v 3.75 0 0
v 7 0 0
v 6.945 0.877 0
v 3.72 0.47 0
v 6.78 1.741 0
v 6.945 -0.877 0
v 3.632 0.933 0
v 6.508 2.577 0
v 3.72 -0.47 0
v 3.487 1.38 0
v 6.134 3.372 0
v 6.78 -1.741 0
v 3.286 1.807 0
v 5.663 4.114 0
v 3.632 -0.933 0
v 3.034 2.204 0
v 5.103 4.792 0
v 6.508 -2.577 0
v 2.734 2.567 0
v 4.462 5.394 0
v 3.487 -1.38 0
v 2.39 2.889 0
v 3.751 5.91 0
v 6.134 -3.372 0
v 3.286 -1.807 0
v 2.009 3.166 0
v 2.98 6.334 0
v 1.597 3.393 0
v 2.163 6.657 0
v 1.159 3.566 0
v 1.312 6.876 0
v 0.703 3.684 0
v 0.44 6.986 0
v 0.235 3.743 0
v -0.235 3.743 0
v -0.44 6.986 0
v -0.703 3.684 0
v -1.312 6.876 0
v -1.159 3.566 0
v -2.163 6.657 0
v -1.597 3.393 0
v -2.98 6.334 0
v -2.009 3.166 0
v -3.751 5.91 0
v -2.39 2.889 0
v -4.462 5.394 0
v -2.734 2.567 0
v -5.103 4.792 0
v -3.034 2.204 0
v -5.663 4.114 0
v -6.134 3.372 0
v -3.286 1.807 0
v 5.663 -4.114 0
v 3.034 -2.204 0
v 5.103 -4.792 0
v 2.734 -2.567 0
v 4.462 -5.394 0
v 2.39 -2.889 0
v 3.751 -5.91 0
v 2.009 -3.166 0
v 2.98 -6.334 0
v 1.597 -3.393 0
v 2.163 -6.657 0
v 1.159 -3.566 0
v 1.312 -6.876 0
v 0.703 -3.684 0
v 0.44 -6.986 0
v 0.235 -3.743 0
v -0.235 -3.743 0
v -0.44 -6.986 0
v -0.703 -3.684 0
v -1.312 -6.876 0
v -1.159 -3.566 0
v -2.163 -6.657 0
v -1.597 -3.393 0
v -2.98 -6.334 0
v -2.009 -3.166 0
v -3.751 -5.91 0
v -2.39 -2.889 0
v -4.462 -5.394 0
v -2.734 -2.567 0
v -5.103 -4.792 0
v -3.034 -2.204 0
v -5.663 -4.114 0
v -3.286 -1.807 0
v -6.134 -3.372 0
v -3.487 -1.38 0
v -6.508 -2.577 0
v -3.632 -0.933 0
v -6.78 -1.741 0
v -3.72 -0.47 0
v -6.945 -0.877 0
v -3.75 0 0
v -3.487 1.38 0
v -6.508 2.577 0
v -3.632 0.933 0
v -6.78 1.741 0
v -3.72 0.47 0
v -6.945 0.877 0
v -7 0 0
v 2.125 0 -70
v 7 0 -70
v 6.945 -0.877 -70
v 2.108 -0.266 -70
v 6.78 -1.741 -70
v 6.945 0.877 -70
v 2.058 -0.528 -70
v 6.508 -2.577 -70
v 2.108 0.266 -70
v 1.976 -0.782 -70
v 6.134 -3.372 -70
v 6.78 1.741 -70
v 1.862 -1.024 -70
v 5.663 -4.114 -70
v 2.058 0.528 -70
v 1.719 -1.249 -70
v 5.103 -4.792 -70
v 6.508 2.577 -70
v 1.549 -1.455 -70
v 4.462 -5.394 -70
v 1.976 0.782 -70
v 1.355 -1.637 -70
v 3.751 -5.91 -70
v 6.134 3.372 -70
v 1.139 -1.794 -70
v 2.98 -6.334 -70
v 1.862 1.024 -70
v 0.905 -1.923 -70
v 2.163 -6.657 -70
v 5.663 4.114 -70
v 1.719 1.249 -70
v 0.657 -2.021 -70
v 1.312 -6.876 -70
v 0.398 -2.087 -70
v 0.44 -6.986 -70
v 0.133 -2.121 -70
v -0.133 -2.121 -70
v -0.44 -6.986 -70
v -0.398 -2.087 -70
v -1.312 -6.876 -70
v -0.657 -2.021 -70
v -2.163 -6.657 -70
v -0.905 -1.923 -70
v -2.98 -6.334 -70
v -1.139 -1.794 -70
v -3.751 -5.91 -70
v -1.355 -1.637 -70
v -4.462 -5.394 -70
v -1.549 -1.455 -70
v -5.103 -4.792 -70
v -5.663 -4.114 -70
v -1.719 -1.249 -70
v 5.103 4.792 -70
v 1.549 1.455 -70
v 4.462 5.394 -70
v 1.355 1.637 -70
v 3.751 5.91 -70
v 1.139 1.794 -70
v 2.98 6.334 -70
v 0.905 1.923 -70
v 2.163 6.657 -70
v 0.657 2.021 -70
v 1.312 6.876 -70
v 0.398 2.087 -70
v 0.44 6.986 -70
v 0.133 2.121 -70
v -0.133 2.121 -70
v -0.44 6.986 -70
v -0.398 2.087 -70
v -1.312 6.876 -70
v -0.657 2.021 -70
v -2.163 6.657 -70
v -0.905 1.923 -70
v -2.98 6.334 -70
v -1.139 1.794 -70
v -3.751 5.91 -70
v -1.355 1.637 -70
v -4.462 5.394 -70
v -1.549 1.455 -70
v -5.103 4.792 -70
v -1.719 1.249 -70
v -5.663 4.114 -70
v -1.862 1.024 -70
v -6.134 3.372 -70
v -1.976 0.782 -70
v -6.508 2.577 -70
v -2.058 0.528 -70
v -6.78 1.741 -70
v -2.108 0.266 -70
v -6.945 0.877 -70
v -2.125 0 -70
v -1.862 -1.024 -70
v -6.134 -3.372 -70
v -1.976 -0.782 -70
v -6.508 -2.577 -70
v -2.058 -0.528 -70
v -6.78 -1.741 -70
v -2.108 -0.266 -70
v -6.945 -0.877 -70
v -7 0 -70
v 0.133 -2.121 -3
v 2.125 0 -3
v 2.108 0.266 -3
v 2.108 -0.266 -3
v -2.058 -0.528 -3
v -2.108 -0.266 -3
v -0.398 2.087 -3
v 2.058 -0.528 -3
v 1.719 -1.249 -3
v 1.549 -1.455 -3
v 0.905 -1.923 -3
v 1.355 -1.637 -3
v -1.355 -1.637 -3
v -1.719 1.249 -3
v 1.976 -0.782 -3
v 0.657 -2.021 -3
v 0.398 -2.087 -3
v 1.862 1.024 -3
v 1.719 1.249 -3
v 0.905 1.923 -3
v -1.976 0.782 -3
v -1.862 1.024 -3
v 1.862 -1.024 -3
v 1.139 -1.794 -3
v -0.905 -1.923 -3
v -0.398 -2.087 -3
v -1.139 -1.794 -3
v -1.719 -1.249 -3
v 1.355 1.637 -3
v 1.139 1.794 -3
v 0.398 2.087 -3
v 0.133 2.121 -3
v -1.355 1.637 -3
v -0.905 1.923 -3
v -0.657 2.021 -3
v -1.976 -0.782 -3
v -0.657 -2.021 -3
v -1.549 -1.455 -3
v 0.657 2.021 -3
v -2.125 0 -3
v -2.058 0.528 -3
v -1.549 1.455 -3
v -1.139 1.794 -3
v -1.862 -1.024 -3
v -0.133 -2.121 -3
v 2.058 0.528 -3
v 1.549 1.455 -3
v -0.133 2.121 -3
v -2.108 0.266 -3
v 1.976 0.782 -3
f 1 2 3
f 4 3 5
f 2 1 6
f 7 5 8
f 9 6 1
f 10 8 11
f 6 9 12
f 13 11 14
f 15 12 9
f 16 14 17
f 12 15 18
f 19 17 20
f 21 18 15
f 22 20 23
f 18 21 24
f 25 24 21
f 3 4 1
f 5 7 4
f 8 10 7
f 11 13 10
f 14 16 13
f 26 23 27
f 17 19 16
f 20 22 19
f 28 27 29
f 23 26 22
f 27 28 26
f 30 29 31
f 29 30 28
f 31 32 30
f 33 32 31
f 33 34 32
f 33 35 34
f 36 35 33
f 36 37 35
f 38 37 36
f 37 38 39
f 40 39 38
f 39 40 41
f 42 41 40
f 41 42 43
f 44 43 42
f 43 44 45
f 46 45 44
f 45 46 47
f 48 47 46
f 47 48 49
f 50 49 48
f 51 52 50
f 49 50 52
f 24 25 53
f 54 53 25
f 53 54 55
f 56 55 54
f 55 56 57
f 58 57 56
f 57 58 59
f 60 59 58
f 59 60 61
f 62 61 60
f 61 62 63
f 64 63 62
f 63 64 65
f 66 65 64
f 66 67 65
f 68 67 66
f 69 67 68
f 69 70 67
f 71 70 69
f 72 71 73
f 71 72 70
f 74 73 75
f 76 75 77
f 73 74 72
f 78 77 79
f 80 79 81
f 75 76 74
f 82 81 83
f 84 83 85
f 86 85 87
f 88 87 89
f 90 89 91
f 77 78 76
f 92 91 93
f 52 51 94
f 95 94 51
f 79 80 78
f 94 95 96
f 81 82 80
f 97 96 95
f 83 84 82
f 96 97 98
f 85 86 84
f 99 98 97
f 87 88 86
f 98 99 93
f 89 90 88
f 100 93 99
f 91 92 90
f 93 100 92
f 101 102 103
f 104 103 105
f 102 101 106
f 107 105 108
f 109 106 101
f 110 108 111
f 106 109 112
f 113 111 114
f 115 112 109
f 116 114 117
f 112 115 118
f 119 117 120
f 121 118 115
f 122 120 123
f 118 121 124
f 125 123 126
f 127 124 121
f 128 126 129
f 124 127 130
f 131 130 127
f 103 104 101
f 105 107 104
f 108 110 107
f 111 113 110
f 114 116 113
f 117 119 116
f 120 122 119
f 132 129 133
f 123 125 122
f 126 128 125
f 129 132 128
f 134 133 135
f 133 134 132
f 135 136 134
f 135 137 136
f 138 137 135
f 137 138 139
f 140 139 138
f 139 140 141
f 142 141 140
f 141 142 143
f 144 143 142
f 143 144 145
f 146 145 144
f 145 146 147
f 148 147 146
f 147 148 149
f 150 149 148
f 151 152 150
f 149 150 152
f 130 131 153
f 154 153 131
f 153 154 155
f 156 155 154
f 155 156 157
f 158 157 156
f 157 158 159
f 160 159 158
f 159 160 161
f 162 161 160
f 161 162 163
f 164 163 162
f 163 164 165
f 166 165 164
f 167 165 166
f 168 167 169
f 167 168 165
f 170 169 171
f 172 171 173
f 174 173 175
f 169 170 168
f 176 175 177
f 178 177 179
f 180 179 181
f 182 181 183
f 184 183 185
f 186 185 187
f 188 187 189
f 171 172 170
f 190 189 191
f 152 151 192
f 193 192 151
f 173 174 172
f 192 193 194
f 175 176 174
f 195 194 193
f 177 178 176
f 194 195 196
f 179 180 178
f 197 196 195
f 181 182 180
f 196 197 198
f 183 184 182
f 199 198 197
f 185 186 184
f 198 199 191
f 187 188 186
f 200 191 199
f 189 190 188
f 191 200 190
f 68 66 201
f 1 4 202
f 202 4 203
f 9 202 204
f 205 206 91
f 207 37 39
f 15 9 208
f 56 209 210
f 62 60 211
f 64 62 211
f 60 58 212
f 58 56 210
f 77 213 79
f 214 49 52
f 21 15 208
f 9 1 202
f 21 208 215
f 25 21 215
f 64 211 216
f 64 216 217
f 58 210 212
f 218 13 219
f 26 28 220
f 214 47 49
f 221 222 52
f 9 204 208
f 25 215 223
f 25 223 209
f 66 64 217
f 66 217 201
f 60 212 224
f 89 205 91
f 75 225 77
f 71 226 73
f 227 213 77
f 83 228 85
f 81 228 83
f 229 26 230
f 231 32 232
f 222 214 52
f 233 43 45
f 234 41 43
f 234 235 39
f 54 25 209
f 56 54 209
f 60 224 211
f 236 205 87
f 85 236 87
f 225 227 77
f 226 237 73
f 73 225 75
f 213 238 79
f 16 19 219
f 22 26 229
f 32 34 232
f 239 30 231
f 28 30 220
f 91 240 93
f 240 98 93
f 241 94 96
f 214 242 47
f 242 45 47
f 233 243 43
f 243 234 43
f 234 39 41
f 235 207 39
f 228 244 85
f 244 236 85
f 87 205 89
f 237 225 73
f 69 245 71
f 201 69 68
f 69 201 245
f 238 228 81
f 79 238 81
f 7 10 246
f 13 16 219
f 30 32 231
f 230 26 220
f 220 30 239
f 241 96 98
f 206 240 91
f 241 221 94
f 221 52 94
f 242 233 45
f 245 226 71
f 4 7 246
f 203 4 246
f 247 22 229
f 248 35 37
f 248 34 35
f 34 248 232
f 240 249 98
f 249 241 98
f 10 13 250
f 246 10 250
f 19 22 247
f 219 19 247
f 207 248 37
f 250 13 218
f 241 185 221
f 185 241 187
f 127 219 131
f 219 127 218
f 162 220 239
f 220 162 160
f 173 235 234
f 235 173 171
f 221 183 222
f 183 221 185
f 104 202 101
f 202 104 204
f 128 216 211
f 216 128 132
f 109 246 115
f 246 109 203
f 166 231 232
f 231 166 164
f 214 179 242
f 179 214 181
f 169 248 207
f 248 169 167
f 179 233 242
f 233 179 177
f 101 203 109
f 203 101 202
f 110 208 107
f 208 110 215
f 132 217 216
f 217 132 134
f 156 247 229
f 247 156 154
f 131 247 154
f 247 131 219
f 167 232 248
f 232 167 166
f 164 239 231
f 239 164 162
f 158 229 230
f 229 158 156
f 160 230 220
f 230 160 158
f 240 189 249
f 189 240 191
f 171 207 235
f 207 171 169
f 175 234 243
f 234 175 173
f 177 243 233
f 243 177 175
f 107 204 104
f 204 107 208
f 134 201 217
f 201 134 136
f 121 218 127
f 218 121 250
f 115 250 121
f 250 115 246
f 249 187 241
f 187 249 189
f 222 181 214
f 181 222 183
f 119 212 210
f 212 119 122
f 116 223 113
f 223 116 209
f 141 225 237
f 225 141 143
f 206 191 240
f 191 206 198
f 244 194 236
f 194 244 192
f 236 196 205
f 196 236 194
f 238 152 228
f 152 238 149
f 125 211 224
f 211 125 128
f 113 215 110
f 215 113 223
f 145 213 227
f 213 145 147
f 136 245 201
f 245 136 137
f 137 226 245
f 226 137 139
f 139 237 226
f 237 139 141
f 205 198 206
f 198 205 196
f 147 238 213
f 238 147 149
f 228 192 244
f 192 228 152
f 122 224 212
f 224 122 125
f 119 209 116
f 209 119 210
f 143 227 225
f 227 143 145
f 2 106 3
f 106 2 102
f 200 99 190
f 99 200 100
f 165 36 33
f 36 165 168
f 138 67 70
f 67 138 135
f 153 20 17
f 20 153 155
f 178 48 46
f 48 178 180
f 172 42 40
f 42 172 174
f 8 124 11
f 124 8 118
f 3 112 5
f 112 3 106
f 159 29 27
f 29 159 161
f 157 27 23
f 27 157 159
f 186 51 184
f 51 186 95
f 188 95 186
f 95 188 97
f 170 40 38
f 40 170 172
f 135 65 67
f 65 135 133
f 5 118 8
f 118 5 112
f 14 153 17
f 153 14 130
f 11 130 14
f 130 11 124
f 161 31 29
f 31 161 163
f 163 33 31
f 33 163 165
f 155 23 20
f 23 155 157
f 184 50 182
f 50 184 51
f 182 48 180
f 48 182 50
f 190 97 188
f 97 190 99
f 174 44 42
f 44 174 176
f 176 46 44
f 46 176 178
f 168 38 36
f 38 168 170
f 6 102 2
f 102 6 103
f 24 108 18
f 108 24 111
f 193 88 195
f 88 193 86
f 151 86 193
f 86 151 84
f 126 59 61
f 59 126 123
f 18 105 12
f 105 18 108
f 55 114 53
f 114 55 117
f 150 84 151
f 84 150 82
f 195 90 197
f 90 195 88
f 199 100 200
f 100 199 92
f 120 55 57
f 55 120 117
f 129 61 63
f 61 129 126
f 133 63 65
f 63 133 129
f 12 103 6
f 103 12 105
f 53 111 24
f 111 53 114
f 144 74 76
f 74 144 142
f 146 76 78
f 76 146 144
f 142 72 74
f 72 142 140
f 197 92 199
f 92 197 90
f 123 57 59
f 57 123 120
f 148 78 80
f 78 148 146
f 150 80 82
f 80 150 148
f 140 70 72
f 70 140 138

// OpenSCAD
$fn = 50;


difference() {
	union() {
		translate(v = [0, 0, -70.0000000000]) {
			cylinder(h = 70, r = 7.0000000000);
		}
		cylinder(h = 0, r = 10.0000000000);
	}
	union() {
		translate(v = [0, 0, 0]) {
			rotate(a = [0, 0, 0]) {
				difference() {
					union() {
						#translate(v = [0, 0, -70.0000000000]) {
							cylinder(h = 70, r = 2.0000000000);
						}
						#translate(v = [0, 0, -3]) {
							cylinder(h = 3, r = 7.0000000000, r1 = 2.1250000000, r2 = 3.7500000000);
						}
						#translate(v = [0, 0, -70.0000000000]) {
							cylinder(h = 70, r = 2.1250000000);
						}
						#translate(v = [0, 0, -70.0000000000]) {
							cylinder(h = 70, r = 2.0000000000);
						}
					}
					union();
				}
			}
		}
	}
}
